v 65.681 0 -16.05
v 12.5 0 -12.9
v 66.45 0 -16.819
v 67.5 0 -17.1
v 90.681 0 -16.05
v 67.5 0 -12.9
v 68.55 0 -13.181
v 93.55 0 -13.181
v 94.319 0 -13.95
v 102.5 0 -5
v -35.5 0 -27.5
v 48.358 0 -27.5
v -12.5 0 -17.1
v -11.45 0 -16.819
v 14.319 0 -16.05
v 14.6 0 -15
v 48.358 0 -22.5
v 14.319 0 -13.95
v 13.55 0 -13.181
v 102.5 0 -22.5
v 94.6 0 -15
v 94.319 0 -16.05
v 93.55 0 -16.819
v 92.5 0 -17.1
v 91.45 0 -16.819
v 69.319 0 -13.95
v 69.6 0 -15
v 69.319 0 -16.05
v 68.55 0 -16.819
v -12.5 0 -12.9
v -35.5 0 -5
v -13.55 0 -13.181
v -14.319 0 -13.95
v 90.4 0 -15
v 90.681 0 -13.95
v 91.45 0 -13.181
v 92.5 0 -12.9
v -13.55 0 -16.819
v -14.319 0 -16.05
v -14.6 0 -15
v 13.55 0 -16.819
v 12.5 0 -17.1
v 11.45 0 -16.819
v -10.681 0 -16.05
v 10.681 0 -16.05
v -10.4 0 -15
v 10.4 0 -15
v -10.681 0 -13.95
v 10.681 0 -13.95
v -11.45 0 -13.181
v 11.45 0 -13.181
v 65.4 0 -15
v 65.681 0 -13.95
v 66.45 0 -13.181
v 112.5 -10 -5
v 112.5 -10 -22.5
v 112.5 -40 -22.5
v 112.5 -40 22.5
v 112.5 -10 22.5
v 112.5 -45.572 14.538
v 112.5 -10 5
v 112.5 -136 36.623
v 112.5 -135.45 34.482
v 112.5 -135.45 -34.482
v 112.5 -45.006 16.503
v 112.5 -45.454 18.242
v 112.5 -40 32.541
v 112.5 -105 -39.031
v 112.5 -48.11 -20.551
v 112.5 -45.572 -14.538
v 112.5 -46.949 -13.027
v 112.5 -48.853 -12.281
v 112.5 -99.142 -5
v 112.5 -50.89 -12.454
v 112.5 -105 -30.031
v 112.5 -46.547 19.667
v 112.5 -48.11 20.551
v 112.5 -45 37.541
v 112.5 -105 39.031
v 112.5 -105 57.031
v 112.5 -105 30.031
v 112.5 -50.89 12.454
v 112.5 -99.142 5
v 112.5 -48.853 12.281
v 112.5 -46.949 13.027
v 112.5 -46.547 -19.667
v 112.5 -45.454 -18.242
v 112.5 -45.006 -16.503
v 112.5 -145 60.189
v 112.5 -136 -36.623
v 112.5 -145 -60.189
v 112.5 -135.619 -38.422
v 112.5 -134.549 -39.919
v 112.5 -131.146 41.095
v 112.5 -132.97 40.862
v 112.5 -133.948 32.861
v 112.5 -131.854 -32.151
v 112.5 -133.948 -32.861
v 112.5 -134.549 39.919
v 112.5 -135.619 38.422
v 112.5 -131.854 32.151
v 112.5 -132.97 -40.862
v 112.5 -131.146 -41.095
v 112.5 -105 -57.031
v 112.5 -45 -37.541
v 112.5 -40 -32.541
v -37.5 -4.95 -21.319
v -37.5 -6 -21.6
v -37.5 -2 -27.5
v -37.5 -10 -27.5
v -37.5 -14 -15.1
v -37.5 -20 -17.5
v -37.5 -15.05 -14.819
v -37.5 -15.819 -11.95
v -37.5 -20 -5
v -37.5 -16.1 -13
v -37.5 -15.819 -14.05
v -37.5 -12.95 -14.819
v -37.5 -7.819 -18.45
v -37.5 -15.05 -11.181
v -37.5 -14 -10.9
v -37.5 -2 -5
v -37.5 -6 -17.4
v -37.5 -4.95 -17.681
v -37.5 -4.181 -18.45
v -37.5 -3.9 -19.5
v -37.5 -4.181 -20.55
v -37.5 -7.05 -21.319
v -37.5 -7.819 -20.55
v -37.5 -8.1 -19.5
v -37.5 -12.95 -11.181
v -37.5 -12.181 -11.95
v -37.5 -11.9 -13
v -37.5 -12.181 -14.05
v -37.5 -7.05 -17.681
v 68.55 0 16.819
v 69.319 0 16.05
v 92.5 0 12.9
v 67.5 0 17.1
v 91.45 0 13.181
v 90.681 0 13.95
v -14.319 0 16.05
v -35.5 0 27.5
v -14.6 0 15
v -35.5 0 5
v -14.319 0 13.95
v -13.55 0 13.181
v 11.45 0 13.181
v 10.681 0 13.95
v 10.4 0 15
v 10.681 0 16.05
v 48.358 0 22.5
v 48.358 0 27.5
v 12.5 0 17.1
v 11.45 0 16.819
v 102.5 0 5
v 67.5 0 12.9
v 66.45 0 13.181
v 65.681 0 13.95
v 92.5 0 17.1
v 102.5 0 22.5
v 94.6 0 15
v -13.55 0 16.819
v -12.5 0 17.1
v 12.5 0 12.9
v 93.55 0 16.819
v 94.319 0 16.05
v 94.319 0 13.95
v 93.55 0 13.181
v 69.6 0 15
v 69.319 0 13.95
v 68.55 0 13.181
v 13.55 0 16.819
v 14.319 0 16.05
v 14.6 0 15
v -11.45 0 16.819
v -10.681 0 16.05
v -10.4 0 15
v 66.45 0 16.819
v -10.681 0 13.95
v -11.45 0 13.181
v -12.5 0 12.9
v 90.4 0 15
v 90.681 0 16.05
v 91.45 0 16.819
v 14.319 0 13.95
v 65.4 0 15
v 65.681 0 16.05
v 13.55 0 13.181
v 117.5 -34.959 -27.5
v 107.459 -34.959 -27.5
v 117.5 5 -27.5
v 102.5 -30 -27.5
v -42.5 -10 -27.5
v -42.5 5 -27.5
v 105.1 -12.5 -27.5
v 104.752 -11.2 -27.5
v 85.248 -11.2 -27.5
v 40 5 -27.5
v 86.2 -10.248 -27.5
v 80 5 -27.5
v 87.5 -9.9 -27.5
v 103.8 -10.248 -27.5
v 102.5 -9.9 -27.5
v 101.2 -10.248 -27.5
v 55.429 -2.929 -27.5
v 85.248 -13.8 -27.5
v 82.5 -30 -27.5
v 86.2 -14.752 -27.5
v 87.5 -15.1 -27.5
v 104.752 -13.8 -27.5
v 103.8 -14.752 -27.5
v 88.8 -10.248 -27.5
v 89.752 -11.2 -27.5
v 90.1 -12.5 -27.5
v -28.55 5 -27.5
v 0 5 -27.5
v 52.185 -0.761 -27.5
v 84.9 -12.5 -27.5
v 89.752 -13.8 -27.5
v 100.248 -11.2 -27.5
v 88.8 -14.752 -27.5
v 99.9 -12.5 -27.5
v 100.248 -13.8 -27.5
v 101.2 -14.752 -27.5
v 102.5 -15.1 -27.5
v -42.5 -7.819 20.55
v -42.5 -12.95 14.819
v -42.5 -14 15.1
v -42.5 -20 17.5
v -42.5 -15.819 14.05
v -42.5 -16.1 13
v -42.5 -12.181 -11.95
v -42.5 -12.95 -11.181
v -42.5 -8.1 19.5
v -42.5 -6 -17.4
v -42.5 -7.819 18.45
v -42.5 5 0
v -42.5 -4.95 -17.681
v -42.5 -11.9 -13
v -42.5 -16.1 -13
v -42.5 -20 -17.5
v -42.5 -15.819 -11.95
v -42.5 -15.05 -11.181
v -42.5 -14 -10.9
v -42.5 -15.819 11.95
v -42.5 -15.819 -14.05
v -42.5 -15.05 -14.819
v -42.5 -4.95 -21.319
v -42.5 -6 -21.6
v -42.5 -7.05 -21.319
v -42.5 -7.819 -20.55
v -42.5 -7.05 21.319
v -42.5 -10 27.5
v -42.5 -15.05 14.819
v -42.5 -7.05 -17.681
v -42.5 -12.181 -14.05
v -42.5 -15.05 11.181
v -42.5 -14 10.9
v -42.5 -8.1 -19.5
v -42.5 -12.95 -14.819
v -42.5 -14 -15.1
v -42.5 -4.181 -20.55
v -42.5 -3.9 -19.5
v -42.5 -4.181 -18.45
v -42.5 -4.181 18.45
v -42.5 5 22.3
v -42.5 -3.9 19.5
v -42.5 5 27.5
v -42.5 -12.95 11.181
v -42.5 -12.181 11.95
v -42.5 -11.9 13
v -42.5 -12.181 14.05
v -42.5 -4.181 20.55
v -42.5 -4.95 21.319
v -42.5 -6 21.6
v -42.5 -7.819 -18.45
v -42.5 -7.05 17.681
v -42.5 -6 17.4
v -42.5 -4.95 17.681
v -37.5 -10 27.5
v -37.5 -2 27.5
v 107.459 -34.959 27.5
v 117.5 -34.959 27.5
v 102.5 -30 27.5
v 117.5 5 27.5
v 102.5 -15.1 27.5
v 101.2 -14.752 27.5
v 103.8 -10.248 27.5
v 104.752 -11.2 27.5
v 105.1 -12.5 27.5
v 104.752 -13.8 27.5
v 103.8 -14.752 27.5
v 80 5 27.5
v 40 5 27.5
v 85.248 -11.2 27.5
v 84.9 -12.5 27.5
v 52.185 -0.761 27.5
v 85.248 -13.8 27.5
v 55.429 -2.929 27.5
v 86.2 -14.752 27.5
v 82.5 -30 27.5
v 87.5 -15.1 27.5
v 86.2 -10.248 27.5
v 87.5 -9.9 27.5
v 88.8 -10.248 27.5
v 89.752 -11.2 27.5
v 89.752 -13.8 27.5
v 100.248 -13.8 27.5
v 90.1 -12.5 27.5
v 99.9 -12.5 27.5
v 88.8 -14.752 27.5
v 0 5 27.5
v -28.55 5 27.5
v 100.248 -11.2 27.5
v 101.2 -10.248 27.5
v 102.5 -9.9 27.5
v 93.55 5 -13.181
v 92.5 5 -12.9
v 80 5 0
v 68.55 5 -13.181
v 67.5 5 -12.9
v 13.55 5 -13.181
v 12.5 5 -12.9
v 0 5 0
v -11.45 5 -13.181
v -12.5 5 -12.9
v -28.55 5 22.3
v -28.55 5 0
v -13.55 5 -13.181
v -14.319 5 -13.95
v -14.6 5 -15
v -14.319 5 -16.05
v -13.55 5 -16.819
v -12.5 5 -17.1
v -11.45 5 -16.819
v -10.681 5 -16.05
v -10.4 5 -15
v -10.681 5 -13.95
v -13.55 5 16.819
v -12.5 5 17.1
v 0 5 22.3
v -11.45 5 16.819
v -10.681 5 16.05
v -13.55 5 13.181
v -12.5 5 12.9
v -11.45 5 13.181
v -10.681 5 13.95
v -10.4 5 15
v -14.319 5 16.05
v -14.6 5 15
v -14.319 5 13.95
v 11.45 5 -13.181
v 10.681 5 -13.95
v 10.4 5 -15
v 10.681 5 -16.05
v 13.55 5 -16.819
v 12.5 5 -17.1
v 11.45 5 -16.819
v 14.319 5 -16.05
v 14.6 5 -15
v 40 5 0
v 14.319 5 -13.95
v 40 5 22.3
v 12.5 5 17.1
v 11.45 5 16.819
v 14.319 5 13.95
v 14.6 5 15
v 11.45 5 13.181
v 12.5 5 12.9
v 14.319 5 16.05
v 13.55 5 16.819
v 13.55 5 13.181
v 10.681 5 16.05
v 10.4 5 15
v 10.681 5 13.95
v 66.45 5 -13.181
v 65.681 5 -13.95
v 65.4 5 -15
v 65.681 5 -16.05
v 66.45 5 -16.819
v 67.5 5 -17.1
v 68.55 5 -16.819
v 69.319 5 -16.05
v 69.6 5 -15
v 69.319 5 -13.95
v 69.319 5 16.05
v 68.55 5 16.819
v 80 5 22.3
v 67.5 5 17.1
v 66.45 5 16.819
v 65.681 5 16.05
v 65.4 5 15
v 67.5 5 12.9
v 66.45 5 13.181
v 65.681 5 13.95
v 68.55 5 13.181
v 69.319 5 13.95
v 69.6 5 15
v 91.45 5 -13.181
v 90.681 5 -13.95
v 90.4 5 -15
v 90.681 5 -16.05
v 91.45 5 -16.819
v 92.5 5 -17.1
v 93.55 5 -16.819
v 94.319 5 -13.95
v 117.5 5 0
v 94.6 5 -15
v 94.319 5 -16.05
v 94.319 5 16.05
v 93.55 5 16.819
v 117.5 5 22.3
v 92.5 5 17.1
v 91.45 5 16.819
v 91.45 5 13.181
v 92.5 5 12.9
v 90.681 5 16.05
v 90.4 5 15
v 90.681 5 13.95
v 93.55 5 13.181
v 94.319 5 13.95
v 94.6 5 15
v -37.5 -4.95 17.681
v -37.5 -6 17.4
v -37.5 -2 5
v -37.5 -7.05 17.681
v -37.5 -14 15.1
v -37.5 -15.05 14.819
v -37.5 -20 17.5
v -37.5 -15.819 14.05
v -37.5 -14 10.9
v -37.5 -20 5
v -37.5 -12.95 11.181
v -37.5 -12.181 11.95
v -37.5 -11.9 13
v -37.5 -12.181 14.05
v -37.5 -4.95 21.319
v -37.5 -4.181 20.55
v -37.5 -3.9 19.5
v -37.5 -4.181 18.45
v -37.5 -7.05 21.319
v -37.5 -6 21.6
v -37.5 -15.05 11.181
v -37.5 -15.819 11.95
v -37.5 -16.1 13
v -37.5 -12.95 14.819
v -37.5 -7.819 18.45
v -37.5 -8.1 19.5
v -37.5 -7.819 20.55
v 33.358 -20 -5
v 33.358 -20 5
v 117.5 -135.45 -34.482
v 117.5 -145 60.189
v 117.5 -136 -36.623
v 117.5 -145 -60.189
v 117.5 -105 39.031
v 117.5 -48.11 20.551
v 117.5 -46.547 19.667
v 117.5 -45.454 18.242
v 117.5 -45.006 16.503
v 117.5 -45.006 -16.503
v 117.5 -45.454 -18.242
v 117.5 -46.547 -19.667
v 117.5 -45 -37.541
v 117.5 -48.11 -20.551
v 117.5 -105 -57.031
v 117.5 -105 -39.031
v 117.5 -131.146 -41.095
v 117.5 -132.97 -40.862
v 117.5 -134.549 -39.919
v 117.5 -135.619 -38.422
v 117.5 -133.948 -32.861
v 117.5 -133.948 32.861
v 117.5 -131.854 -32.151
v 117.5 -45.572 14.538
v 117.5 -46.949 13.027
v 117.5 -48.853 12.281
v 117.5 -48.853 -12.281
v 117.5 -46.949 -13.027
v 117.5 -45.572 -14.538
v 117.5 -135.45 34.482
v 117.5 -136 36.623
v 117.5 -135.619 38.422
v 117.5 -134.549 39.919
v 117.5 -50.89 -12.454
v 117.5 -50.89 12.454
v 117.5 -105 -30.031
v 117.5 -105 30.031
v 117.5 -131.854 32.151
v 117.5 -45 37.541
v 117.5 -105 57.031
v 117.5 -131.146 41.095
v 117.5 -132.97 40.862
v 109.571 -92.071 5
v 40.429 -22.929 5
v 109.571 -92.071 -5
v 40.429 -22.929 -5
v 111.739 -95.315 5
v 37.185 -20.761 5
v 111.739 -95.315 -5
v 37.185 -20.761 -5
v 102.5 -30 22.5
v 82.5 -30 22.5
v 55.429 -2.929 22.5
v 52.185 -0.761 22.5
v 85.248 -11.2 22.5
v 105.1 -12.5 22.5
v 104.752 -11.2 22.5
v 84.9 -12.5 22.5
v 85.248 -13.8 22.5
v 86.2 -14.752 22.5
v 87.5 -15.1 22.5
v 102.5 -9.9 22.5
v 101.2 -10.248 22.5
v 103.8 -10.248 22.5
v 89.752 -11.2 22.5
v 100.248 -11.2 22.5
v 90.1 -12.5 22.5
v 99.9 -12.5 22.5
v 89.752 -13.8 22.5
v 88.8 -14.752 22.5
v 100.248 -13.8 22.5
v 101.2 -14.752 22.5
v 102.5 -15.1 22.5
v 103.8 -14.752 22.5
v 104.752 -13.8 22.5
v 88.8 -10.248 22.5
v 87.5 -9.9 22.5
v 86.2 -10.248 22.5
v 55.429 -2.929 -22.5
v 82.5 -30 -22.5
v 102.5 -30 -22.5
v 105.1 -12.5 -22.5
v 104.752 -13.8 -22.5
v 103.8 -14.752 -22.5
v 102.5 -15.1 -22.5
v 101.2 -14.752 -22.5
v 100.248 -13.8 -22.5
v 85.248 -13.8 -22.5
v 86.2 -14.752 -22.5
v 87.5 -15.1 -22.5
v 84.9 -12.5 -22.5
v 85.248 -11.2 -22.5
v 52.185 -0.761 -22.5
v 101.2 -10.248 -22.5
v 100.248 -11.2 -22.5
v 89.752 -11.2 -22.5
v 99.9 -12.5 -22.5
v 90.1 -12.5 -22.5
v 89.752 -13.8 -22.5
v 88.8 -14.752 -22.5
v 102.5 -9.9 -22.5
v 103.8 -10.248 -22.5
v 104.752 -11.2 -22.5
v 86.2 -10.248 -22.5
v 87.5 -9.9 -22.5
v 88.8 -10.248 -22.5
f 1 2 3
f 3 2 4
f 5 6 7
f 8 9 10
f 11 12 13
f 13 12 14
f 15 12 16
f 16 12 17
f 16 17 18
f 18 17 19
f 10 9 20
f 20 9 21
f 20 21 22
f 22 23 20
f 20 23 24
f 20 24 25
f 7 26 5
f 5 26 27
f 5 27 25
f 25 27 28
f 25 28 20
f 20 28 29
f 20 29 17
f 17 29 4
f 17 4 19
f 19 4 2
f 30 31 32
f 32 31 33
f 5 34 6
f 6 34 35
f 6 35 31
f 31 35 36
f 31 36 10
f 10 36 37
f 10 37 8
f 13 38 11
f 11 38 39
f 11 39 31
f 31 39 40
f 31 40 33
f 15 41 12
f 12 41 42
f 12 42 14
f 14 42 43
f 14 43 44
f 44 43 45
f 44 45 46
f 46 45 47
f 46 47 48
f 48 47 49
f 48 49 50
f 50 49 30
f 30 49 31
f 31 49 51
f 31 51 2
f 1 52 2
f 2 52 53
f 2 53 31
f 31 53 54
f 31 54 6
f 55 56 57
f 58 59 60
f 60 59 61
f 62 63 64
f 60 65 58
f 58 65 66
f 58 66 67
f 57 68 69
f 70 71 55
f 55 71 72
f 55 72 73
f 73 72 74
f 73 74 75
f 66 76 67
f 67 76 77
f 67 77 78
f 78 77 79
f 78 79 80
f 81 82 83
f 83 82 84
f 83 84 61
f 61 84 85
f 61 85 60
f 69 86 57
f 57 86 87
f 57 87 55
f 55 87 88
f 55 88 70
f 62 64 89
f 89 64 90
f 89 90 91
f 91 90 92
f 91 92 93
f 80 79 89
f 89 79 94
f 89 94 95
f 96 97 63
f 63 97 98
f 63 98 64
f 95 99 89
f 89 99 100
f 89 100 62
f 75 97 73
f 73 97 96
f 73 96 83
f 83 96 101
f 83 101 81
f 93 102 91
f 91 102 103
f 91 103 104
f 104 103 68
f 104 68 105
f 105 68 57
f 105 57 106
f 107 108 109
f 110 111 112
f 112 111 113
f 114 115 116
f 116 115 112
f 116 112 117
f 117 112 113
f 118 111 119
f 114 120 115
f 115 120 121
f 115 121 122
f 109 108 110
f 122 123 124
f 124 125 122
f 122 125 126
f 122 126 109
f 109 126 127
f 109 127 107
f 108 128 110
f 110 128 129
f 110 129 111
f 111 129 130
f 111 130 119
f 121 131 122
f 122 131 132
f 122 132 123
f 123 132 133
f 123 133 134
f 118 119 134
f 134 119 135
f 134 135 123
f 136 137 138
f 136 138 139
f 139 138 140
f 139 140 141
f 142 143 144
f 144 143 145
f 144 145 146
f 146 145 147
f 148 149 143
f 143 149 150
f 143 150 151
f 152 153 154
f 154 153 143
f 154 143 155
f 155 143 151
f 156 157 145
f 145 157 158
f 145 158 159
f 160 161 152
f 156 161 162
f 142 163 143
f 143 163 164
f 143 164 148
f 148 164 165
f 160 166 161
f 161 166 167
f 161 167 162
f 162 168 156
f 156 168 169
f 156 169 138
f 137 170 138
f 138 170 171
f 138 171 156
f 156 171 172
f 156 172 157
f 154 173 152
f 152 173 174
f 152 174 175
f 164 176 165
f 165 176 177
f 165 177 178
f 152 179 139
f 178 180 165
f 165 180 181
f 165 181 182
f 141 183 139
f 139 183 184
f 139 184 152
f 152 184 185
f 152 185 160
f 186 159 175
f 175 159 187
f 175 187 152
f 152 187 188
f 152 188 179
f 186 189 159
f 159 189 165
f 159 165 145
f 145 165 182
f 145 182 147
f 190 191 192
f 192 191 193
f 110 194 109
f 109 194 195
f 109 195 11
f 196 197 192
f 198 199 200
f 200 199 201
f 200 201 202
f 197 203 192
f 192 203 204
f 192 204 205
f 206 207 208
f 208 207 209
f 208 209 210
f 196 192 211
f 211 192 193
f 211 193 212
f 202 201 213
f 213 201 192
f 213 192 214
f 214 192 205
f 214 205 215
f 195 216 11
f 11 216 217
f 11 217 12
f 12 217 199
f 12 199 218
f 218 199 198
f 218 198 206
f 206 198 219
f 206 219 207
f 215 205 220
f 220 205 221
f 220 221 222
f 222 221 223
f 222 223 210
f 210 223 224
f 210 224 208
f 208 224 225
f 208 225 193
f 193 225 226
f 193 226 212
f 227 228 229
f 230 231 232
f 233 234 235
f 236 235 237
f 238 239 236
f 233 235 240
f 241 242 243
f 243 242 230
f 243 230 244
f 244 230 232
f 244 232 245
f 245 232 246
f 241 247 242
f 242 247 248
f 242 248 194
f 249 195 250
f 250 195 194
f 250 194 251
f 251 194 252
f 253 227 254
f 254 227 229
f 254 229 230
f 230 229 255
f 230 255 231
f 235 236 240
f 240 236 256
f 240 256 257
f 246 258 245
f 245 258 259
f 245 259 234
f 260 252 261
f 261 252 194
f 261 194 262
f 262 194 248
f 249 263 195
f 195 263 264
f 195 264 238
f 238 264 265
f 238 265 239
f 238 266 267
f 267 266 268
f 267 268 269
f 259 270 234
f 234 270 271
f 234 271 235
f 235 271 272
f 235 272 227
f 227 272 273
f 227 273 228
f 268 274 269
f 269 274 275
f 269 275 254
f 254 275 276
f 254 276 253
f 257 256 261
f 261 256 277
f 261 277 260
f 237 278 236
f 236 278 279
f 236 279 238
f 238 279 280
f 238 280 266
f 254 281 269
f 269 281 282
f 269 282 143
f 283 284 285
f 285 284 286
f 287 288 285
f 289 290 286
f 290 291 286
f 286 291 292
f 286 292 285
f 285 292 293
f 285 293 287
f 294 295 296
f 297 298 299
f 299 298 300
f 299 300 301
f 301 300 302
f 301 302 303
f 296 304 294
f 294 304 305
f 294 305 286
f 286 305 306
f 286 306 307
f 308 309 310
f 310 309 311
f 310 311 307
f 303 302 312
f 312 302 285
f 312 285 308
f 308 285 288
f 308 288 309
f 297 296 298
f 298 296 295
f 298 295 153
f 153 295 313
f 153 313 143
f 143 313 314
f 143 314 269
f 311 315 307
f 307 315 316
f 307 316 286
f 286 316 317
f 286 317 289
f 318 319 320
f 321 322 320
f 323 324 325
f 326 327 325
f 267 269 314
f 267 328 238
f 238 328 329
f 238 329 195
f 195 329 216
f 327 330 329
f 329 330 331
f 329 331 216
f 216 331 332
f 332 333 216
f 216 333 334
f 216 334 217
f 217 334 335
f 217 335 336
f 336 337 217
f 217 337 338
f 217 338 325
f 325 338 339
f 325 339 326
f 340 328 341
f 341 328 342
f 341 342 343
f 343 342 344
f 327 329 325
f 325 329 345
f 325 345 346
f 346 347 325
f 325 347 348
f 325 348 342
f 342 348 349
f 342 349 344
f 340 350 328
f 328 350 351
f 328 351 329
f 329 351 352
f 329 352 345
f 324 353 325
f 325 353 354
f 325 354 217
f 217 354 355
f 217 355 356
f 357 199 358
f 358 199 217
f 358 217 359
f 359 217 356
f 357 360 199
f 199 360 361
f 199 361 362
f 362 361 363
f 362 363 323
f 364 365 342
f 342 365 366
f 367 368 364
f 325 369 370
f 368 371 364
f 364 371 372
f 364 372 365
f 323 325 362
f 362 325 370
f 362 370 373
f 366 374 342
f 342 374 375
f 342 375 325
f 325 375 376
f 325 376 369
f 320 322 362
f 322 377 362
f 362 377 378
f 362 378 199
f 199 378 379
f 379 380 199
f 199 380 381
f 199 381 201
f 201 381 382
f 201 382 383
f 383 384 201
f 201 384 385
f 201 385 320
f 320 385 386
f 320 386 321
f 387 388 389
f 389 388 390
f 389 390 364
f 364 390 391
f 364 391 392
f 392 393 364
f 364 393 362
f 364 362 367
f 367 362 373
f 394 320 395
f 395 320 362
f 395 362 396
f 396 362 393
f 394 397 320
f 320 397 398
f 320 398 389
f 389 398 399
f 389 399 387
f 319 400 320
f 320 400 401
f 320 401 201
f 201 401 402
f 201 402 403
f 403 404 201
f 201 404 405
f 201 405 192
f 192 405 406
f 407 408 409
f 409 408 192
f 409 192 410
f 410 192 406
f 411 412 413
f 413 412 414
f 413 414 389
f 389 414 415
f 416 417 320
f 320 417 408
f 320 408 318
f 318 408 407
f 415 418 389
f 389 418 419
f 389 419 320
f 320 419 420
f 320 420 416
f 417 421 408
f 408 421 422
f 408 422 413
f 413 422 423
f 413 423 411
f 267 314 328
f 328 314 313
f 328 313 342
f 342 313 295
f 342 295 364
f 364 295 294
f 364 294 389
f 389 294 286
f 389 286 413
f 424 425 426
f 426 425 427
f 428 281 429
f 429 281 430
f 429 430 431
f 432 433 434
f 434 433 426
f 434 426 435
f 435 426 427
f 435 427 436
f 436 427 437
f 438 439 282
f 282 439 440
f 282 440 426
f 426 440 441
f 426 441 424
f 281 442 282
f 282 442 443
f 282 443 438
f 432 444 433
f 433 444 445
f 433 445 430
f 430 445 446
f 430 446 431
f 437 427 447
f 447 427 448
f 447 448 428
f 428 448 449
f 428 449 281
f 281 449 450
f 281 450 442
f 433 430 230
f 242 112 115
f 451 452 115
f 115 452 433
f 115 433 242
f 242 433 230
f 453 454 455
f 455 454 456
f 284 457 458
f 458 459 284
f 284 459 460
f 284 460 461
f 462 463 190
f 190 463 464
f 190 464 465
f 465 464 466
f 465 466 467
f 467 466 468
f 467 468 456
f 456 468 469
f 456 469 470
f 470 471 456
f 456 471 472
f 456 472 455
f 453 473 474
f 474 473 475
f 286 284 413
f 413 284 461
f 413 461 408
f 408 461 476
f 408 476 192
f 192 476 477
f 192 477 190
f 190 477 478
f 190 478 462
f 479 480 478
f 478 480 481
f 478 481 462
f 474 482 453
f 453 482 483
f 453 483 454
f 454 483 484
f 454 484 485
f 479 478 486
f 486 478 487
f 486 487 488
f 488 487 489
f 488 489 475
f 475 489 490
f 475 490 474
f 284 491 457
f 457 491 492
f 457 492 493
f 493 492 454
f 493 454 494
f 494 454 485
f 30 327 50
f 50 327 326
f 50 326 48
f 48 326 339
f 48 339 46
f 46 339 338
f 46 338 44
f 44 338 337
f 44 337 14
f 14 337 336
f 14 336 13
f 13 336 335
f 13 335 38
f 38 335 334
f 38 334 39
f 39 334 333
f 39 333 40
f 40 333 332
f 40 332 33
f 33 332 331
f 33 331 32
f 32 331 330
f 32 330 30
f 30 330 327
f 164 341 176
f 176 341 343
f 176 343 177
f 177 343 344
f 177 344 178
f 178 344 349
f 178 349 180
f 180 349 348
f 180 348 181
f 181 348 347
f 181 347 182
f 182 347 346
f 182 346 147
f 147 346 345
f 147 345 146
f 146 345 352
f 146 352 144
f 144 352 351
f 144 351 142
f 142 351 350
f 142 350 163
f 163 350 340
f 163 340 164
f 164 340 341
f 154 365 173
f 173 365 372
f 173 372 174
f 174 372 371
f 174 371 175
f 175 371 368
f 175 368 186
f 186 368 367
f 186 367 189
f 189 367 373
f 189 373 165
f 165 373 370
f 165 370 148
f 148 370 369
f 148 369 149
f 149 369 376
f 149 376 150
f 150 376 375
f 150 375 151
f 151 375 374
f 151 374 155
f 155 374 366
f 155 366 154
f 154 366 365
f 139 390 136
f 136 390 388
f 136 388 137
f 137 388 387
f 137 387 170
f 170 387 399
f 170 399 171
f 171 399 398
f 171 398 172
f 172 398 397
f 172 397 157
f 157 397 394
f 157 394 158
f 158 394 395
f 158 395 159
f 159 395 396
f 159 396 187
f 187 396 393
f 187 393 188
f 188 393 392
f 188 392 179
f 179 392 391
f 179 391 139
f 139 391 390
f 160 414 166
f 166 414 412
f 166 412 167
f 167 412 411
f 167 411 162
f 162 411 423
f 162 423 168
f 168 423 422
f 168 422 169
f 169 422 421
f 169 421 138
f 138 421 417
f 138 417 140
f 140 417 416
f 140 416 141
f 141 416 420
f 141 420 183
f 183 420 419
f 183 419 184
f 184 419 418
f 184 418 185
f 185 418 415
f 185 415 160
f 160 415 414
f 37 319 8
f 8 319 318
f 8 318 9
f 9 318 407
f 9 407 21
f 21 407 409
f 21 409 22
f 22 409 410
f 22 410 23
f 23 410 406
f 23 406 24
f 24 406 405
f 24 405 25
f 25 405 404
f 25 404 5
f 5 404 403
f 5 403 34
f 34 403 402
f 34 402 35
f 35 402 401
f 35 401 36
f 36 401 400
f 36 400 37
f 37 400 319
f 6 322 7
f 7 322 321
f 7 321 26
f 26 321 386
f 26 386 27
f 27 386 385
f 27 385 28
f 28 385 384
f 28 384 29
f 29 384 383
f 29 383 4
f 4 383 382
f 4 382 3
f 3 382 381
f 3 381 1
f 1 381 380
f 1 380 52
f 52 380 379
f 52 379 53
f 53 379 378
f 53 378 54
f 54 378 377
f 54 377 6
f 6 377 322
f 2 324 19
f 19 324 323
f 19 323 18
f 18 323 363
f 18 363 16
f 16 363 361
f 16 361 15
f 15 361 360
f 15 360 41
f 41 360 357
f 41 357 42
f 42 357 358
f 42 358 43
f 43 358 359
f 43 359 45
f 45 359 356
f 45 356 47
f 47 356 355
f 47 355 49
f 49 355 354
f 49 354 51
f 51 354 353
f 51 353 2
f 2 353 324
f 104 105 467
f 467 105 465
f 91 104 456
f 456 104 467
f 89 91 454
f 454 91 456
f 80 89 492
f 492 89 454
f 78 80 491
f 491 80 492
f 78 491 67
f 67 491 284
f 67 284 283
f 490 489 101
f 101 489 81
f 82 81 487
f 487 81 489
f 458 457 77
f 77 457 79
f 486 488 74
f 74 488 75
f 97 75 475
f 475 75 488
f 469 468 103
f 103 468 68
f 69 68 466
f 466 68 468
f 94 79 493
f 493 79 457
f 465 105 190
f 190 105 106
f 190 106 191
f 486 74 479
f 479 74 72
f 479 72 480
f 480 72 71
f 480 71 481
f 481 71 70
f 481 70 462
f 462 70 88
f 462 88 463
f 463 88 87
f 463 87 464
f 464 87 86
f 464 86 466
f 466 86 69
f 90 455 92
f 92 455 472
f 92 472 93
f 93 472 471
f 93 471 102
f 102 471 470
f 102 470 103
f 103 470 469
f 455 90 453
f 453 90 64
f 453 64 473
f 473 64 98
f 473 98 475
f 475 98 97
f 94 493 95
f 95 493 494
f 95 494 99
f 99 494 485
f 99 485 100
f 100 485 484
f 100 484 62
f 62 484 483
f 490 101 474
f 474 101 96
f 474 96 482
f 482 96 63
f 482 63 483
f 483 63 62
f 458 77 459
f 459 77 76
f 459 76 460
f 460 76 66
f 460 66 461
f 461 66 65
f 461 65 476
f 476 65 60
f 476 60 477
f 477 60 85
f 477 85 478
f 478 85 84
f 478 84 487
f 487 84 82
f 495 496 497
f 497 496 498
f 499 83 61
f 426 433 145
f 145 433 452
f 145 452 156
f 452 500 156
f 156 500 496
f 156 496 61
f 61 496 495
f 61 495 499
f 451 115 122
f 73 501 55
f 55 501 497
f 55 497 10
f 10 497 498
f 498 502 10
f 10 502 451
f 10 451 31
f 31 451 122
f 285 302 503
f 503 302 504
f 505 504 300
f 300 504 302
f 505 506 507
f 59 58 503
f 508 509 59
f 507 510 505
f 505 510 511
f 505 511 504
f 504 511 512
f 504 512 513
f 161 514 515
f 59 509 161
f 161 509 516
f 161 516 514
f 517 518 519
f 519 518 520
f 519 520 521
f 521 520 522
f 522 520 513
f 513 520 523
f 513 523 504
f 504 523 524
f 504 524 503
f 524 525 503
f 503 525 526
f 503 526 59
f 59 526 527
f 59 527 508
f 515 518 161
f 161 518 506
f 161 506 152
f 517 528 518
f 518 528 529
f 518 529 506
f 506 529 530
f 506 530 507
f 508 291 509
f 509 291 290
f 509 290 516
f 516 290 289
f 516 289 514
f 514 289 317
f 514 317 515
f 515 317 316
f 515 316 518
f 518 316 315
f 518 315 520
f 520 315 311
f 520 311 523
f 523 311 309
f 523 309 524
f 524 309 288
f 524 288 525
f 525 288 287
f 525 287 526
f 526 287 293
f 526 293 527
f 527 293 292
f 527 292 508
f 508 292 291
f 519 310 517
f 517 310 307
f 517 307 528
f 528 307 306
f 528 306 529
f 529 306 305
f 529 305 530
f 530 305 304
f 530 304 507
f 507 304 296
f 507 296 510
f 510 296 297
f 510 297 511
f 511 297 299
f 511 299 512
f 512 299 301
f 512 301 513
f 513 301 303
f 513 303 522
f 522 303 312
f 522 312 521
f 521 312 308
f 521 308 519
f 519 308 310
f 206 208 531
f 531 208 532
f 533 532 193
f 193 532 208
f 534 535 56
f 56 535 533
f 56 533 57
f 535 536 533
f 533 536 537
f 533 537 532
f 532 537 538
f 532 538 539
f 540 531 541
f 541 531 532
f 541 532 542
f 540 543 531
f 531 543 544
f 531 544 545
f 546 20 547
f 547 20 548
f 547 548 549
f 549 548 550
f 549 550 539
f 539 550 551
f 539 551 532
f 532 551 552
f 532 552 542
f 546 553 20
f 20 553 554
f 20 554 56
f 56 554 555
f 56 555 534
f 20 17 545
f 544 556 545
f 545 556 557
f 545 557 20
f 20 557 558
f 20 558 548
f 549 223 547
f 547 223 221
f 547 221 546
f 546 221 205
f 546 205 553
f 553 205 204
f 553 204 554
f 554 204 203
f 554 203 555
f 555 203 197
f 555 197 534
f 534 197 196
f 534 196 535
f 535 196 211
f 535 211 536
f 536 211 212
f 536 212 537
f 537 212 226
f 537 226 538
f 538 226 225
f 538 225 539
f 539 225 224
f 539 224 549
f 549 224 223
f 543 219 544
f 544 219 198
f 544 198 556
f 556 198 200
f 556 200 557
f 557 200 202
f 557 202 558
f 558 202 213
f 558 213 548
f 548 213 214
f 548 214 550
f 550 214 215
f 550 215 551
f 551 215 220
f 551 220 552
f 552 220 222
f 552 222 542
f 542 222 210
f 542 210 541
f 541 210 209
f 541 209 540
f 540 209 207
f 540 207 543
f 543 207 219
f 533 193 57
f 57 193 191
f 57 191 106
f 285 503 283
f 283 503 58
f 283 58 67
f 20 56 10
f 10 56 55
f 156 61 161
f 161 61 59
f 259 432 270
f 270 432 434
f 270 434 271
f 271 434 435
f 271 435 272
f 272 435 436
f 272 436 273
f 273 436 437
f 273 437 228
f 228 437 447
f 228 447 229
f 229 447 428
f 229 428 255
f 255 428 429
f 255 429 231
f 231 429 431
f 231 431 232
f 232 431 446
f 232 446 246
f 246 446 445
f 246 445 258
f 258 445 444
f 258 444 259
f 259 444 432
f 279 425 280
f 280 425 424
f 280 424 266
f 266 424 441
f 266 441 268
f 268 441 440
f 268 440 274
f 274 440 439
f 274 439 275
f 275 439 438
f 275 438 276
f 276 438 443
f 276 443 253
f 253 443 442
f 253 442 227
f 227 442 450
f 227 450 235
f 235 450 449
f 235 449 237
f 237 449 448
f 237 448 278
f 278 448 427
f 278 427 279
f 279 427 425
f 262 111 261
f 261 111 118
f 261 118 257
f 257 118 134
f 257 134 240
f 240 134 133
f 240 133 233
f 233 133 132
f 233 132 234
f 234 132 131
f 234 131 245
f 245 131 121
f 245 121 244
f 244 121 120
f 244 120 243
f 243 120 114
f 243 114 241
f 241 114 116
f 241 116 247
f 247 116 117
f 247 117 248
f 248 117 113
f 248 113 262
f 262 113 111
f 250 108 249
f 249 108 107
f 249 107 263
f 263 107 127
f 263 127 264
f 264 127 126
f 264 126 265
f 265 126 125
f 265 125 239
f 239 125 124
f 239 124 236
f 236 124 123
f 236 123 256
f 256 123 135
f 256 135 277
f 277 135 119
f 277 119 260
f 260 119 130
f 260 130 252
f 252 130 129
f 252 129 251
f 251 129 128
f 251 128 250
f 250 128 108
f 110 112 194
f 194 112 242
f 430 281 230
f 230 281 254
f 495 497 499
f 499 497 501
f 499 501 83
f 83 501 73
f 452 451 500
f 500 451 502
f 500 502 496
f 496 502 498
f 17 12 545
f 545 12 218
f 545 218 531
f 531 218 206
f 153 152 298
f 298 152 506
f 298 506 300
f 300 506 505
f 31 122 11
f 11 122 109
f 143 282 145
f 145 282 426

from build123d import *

# Parameters (mm, degrees)
SKETCH_1_W          = 85
SKETCH_1_H          = 55
EXTRUDE_1_DEPTH     = 5
SKETCH_2_W          = 5
SKETCH_2_H          = 55
EXTRUDE_2_DEPTH     = 20
SKETCH_3_W          = 55
SKETCH_3_H          = 5
EXTRUDE_3_DEPTH     = 75
SKETCH_7_R          = 2.1
CUT_EXTRUDE_1_DEPTH = 5
EXTRUDE_4_DEPTH     = 5
FILLET_1_R          = 4.5
RIB_START           = -5
RIB_1_DEPTH         = 10
EXTRUDE_5_DEPTH     = 5
SKETCH_12_R         = 2.6
CUT_EXTRUDE_2_DEPTH = 5
CHAMFER_1_SIZE      = 10
CHAMFER_2_SIZE      = 10
SKETCH_13_R         = 2.1
CUT_EXTRUDE_3_DEPTH = 5
CHAMFER_3_SIZE      = 10
FILLET_2_R          = 10
FILLET_3_R          = 10
CHAMFER_4_SIZE      = 2


# Read off the part's stored shape, not the designer's step: 筋1
with BuildPart() as part:
    # 草图1 → 凸台-拉伸1 (new body)
    with BuildSketch(Plane(origin=(0, 0, 0), x_dir=(1, 0, 0), z_dir=(0, 1, 0))):
        Rectangle(SKETCH_1_W, SKETCH_1_H)
    extrude(amount=EXTRUDE_1_DEPTH)

    # 草图2 → 凸台-拉伸2 (add)
    with BuildSketch(Plane.XZ):
        with Locations((-40, 0)):
            Rectangle(SKETCH_2_W, SKETCH_2_H)
    extrude(amount=EXTRUDE_2_DEPTH)

    # 草图3 → 凸台-拉伸3 (add)
    with BuildSketch(Plane(origin=(42.5, 0, 0), x_dir=(0, 0, -1), z_dir=(1, 0, 0))):
        with Locations((0, 2.5)):
            Rectangle(SKETCH_3_W, SKETCH_3_H)
    extrude(amount=EXTRUDE_3_DEPTH)

    # 草图7 → 切除-拉伸1 (cut)
    with BuildSketch(Plane(origin=(0, 5, 0), x_dir=(1, 0, 0), z_dir=(0, 1, 0))):
        with Locations(Location((-12.5, 15, 0), (0, 0, 270))):
            Circle(SKETCH_7_R)
        with Locations(Location((12.5, 15, 0), (0, 0, 270))):
            Circle(SKETCH_7_R)
        with Locations(Location((67.5, 15, 0), (0, 0, 270))):
            Circle(SKETCH_7_R)
        with Locations(Location((92.5, 15, 0), (0, 0, 270))):
            Circle(SKETCH_7_R)
        with Locations(Location((92.5, -15, 0), (0, 0, 90))):
            Circle(SKETCH_7_R)
        with Locations(Location((67.5, -15, 0), (0, 0, 90))):
            Circle(SKETCH_7_R)
        with Locations(Location((12.5, -15, 0), (0, 0, 90))):
            Circle(SKETCH_7_R)
        with Locations(Location((-12.5, -15, 0), (0, 0, 90))):
            Circle(SKETCH_7_R)
    extrude(amount=-CUT_EXTRUDE_1_DEPTH, mode=Mode.SUBTRACT)

    # 草图8 → 凸台-拉伸4 (add)
    with BuildSketch(Plane(origin=(117.5, 0, 0), x_dir=(0, 0, -1), z_dir=(1, 0, 0))):
        Polygon((-33.188754566, -145), (-27.5, -145), (27.5, -145), (60.188754566, -145), (57.031110104, -105), (37.540925534, -45), (27.5, -34.959074466), (27.5, -20), (27.5, 0), (-27.5, 0), (-27.5, -20), (-27.5, -34.959074466), (-37.540925534, -45), (-57.031110104, -105), (-60.188754566, -145), (-42.188754566, -145), align=None)
        Polygon((-32.478284562, -136), (-41.478284562, -136), (-39.031110104, -105), (-19.540925534, -45), (-10.540925534, -45), (-30.031110104, -105), align=None, mode=Mode.SUBTRACT)
        Polygon((41.478284562, -136), (32.478284562, -136), (30.031110104, -105), (10.540925534, -45), (19.540925534, -45), (39.031110104, -105), align=None, mode=Mode.SUBTRACT)
    extrude(amount=-EXTRUDE_4_DEPTH)

    # 圆角1
    # the kernel refuses this fillet: 4.5 mm, written as the material it adds along each edge
    with BuildSketch(Plane(origin=(117.5, -45, -19.540925534), x_dir=(0, -0.9510797935163557, -0.30894534527143475), z_dir=(-1, 0, 0)), Plane(origin=(117.5, -45, 19.540925534), x_dir=(0, 0, -1), z_dir=(-1, 0, 0))) as fillet_1_piece_1:
        with BuildLine():
            CenterArc((FILLET_1_R * 0.726600080708, FILLET_1_R), FILLET_1_R, 197.995683599, 72.004316401)
            Line((-FILLET_1_R * 0.224479712809, FILLET_1_R * 0.691054654729), (0, 0))
            Line((0, 0), (FILLET_1_R * 0.726600080708, 0))
        make_face()
    extrude(amount=5)
    with BuildSketch(Plane(origin=(117.5, -45, -10.540925534), x_dir=(0, 0, -1), z_dir=(-1, 0, 0)), Plane(origin=(117.5, -45, 10.540925534), x_dir=(0, -0.9510797935163557, 0.30894534527143513), z_dir=(-1, 0, 0))) as fillet_1_piece_2:
        with BuildLine():
            CenterArc((FILLET_1_R * 1.3762728997, FILLET_1_R), FILLET_1_R, 162.004316401, 107.995683599)
            Line((FILLET_1_R * 0.425193106186, FILLET_1_R * 1.30894534527), (0, 0))
            Line((0, 0), (FILLET_1_R * 1.3762728997, 0))
        make_face()
    extrude(amount=5)
    with BuildSketch(Plane(origin=(117.5, -136, -32.478284562), x_dir=(0, 0.9968986380141637, 0.07869628660556646), z_dir=(-1, 0, 0))) as fillet_1_piece_3:
        with BuildLine():
            CenterArc((FILLET_1_R * 0.924169898787, FILLET_1_R), FILLET_1_R, 184.513632187, 85.486367813)
            Line((-FILLET_1_R * 0.0727287392272, FILLET_1_R * 0.921303713394), (0, 0))
            Line((0, 0), (FILLET_1_R * 0.924169898787, 0))
        make_face()
    extrude(amount=5)
    with BuildSketch(Plane(origin=(117.5, -136, -41.478284562), x_dir=(0, 0.9968986380141637, 0.07869628660556578), z_dir=(-1, 0, 0))) as fillet_1_piece_4:
        with BuildLine():
            CenterArc((FILLET_1_R * 1.08205212192, -FILLET_1_R), FILLET_1_R, 90, 94.513632187)
            Line((FILLET_1_R * 0.085153483909, -FILLET_1_R * 1.07869628661), (0, 0))
            Line((0, 0), (FILLET_1_R * 1.08205212192, 0))
        make_face()
    extrude(amount=5)
    with BuildSketch(Plane(origin=(117.5, -136, 32.478284562), x_dir=(0, 0.9968986380141636, -0.078696286605567), z_dir=(-1, 0, 0))) as fillet_1_piece_5:
        with BuildLine():
            CenterArc((FILLET_1_R * 0.924169898787, -FILLET_1_R), FILLET_1_R, 90, 85.486367813)
            Line((-FILLET_1_R * 0.0727287392272, -FILLET_1_R * 0.921303713394), (0, 0))
            Line((0, 0), (FILLET_1_R * 0.924169898787, 0))
        make_face()
    extrude(amount=5)
    with BuildSketch(Plane(origin=(117.5, -136, 41.478284562), x_dir=(0, 0.9968986380141637, -0.07869628660556578), z_dir=(-1, 0, 0))) as fillet_1_piece_6:
        with BuildLine():
            CenterArc((FILLET_1_R * 1.08205212192, FILLET_1_R), FILLET_1_R, 175.486367813, 94.513632187)
            Line((FILLET_1_R * 0.085153483909, FILLET_1_R * 1.07869628661), (0, 0))
            Line((0, 0), (FILLET_1_R * 1.08205212192, 0))
        make_face()
    extrude(amount=5)

    # 筋1 outline → 筋1 (add)
    with BuildSketch(Plane.XY.offset(RIB_START)):
        Polygon((-37.5, 0), (-37.5, -20), (37.5, -20), (112.5, -95), (112.5, 0), align=None)
    extrude(amount=RIB_1_DEPTH)

    # 草图10 → 凸台-拉伸5 (add)
    with BuildSketch(Plane.XY.offset(27.5)):
        Polygon((112.5, 0), (112.5, -30), (82.5, -30), (52.5, 0), align=None)
    extrude_5 = extrude(amount=-EXTRUDE_5_DEPTH)

    # 草图12 → 切除-拉伸2 (cut)
    with BuildSketch(Plane.XY.offset(27.5)):
        with Locations((87.5, -12.5)):
            Circle(SKETCH_12_R)
        with Locations((102.5, -12.5)):
            Circle(SKETCH_12_R)
    cut_extrude_2 = extrude(amount=-CUT_EXTRUDE_2_DEPTH, mode=Mode.SUBTRACT)

    # 镜向2: 凸台-拉伸5, 切除-拉伸2 across plane
    add(extrude_5.mirror(Plane.XY))
    add(cut_extrude_2.mirror(Plane.XY), mode=Mode.SUBTRACT)

    # 倒角1
    chamfer_1_edges = [part.edges().sort_by_distance(p)[0] for p in [
        (112.5, -30, -25),
        (112.5, -30, 25),
    ]]
    chamfer(chamfer_1_edges, length=CHAMFER_1_SIZE)

    # 倒角2
    chamfer_2_edges = [part.edges().sort_by_distance(p)[0] for p in [
        (112.5, 0, -13.75),
        (112.5, 0, 13.75),
    ]]
    chamfer(chamfer_2_edges, length=CHAMFER_2_SIZE)

    # 草图13 → 切除-拉伸3 (cut)
    with BuildSketch(Plane(origin=(-37.5, 0, 0), x_dir=(0, 0, -1), z_dir=(1, 0, 0))):
        with Locations((-19.5, -6)):
            Circle(SKETCH_13_R)
        with Locations((-13, -14)):
            Circle(SKETCH_13_R)
    cut_extrude_3 = extrude(amount=-CUT_EXTRUDE_3_DEPTH, mode=Mode.SUBTRACT)

    # 镜向3: 切除-拉伸3 across plane
    add(cut_extrude_3.mirror(Plane.XY), mode=Mode.SUBTRACT)

    # 倒角3
    chamfer_3_edges = [part.edges().sort_by_distance(p)[0] for p in [
        (-40, -20, 27.5),
        (-40, -20, -27.5),
    ]]
    chamfer(chamfer_3_edges, length=CHAMFER_3_SIZE)

    # 圆角2
    fillet_2_edges = [part.edges().sort_by_distance(p)[0] for p in [
        (112.5, -95, 0),
        (37.5, -20, 0),
    ]]
    fillet(fillet_2_edges, radius=FILLET_2_R)

    # 圆角3
    fillet_3_edges = [part.edges().sort_by_distance(p)[0] for p in [
        (52.5, 0, 25),
        (52.5, 0, -25),
    ]]
    fillet(fillet_3_edges, radius=FILLET_3_R)

    # 倒角4
    chamfer_4_edges = [part.edges().sort_by_distance(p)[0] for p in [
        (-37.5, 0, -16.25),
        (-37.5, 0, 16.25),
    ]]
    chamfer(chamfer_4_edges, length=CHAMFER_4_SIZE)


solid = part.part
